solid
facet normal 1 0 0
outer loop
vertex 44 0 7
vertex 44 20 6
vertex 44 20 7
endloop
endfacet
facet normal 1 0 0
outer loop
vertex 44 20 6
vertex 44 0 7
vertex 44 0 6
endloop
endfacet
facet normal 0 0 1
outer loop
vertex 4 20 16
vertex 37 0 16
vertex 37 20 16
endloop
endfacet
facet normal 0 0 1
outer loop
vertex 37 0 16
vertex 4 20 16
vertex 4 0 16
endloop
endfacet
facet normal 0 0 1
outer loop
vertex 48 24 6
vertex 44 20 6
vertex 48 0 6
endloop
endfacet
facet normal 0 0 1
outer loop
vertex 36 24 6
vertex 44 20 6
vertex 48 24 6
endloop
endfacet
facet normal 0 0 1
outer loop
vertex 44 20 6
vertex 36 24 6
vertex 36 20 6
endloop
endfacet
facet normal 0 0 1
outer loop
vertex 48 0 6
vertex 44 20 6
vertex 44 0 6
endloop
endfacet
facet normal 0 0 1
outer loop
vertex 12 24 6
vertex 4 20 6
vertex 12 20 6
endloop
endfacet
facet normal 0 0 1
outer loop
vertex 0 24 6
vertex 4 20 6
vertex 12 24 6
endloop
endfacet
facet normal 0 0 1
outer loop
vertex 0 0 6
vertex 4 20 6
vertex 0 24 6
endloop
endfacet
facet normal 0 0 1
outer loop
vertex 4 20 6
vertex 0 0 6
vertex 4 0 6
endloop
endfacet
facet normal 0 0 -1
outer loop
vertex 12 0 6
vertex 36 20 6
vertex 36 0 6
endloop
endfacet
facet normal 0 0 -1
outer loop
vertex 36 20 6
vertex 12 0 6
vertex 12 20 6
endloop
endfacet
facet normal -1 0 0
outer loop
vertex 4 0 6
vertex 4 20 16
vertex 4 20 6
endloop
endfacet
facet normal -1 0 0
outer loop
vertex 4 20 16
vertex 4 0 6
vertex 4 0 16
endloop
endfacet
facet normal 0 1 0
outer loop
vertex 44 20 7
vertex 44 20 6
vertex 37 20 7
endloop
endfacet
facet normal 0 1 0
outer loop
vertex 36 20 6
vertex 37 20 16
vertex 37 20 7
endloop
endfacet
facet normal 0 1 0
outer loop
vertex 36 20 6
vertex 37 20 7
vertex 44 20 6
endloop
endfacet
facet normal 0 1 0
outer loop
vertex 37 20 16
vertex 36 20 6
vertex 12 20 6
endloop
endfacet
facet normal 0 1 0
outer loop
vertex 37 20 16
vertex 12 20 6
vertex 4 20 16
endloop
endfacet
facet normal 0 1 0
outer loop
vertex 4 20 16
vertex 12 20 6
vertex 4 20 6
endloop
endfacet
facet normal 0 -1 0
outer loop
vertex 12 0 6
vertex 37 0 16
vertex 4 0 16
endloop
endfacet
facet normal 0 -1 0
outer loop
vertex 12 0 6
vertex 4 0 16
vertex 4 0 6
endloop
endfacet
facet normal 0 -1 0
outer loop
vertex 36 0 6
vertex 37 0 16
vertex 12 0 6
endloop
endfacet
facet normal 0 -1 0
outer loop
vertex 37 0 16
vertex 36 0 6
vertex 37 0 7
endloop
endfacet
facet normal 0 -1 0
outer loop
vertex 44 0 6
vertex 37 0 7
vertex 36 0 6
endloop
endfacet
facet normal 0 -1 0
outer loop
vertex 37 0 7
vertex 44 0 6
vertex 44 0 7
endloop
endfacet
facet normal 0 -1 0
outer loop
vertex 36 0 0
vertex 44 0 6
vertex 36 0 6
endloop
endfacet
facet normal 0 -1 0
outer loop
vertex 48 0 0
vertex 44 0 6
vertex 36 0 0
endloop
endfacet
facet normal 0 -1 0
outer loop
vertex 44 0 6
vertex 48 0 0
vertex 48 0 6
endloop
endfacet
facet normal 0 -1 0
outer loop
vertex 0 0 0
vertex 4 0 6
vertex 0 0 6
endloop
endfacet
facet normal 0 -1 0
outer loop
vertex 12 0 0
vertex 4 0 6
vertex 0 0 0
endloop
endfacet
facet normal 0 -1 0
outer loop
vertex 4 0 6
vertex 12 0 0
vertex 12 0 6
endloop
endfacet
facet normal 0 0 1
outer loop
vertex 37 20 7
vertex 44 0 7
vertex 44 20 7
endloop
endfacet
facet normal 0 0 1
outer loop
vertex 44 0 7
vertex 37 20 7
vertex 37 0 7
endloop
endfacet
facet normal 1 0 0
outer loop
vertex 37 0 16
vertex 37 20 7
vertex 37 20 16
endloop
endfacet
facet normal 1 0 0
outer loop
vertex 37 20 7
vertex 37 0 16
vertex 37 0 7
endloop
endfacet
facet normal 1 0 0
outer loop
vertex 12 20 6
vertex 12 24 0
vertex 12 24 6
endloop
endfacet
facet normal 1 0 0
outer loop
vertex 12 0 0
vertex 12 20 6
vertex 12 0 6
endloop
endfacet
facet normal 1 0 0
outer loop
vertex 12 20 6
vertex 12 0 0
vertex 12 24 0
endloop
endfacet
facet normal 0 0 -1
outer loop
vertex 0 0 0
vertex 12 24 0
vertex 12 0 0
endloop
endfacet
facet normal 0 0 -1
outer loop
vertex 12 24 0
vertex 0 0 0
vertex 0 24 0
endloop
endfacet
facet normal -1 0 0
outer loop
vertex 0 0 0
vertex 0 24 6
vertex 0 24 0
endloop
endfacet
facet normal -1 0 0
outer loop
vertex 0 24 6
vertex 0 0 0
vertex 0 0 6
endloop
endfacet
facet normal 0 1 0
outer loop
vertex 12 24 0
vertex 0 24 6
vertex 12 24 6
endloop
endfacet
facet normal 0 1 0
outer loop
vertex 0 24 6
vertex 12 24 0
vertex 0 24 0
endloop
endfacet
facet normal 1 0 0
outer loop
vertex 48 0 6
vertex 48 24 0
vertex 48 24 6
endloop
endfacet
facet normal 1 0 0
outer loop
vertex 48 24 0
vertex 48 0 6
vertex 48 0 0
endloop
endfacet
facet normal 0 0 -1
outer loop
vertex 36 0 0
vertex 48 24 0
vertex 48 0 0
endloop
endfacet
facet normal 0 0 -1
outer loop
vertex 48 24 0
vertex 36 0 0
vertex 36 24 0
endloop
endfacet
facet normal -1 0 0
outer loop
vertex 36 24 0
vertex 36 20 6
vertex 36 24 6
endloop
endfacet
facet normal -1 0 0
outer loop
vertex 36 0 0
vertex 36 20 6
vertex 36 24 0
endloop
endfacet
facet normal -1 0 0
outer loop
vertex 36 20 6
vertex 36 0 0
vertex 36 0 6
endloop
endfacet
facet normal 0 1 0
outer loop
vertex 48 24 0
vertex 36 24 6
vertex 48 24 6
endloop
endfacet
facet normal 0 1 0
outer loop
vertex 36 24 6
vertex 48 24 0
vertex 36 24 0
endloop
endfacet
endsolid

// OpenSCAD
// Definitions for individual components
module support_block() {
    cube([12, 24, 6]); // Increase size and sharpen edges
}

module base_block() {
    difference() {
        cube([40, 20, 10]); // Cuboid base
        translate([33, 0, 1]) {
            cube([7, 20, 11]); // Sharpen tapered edge and adjust alignment
        }
    }
}

module angled_extension() {
    polyhedron(
        points = [
            [0, 0, 0],   // Bottom-left
            [30, 0, 0],  // Bottom-right
            [30, 20, 0], // Top-right
            [-5, 20, 15], // Adjust Top-left inward and higher for steeper angle
        ],
        faces = [
            [0, 1, 2],
            [0, 2, 3],
            [1, 2, 3],
            [0, 1, 3],
        ]
    );
}

// Combining layers to create the 3D model
module flexible_coupling() {
    // Layer 1 - Support Blocks
    translate([0, 0, 0]) { support_block(); }
    translate([36, 0, 0]) { support_block(); } // Space wider

    // Layer 2 - Base Block
    translate([4, 0, 6]) { base_block(); } // Adjust alignment

    // Layer 3 - Angled Extension
    translate([0, -5, 17]) { angled_extension(); } // Position higher and inward
}

// Render the 3D model
flexible_coupling();
